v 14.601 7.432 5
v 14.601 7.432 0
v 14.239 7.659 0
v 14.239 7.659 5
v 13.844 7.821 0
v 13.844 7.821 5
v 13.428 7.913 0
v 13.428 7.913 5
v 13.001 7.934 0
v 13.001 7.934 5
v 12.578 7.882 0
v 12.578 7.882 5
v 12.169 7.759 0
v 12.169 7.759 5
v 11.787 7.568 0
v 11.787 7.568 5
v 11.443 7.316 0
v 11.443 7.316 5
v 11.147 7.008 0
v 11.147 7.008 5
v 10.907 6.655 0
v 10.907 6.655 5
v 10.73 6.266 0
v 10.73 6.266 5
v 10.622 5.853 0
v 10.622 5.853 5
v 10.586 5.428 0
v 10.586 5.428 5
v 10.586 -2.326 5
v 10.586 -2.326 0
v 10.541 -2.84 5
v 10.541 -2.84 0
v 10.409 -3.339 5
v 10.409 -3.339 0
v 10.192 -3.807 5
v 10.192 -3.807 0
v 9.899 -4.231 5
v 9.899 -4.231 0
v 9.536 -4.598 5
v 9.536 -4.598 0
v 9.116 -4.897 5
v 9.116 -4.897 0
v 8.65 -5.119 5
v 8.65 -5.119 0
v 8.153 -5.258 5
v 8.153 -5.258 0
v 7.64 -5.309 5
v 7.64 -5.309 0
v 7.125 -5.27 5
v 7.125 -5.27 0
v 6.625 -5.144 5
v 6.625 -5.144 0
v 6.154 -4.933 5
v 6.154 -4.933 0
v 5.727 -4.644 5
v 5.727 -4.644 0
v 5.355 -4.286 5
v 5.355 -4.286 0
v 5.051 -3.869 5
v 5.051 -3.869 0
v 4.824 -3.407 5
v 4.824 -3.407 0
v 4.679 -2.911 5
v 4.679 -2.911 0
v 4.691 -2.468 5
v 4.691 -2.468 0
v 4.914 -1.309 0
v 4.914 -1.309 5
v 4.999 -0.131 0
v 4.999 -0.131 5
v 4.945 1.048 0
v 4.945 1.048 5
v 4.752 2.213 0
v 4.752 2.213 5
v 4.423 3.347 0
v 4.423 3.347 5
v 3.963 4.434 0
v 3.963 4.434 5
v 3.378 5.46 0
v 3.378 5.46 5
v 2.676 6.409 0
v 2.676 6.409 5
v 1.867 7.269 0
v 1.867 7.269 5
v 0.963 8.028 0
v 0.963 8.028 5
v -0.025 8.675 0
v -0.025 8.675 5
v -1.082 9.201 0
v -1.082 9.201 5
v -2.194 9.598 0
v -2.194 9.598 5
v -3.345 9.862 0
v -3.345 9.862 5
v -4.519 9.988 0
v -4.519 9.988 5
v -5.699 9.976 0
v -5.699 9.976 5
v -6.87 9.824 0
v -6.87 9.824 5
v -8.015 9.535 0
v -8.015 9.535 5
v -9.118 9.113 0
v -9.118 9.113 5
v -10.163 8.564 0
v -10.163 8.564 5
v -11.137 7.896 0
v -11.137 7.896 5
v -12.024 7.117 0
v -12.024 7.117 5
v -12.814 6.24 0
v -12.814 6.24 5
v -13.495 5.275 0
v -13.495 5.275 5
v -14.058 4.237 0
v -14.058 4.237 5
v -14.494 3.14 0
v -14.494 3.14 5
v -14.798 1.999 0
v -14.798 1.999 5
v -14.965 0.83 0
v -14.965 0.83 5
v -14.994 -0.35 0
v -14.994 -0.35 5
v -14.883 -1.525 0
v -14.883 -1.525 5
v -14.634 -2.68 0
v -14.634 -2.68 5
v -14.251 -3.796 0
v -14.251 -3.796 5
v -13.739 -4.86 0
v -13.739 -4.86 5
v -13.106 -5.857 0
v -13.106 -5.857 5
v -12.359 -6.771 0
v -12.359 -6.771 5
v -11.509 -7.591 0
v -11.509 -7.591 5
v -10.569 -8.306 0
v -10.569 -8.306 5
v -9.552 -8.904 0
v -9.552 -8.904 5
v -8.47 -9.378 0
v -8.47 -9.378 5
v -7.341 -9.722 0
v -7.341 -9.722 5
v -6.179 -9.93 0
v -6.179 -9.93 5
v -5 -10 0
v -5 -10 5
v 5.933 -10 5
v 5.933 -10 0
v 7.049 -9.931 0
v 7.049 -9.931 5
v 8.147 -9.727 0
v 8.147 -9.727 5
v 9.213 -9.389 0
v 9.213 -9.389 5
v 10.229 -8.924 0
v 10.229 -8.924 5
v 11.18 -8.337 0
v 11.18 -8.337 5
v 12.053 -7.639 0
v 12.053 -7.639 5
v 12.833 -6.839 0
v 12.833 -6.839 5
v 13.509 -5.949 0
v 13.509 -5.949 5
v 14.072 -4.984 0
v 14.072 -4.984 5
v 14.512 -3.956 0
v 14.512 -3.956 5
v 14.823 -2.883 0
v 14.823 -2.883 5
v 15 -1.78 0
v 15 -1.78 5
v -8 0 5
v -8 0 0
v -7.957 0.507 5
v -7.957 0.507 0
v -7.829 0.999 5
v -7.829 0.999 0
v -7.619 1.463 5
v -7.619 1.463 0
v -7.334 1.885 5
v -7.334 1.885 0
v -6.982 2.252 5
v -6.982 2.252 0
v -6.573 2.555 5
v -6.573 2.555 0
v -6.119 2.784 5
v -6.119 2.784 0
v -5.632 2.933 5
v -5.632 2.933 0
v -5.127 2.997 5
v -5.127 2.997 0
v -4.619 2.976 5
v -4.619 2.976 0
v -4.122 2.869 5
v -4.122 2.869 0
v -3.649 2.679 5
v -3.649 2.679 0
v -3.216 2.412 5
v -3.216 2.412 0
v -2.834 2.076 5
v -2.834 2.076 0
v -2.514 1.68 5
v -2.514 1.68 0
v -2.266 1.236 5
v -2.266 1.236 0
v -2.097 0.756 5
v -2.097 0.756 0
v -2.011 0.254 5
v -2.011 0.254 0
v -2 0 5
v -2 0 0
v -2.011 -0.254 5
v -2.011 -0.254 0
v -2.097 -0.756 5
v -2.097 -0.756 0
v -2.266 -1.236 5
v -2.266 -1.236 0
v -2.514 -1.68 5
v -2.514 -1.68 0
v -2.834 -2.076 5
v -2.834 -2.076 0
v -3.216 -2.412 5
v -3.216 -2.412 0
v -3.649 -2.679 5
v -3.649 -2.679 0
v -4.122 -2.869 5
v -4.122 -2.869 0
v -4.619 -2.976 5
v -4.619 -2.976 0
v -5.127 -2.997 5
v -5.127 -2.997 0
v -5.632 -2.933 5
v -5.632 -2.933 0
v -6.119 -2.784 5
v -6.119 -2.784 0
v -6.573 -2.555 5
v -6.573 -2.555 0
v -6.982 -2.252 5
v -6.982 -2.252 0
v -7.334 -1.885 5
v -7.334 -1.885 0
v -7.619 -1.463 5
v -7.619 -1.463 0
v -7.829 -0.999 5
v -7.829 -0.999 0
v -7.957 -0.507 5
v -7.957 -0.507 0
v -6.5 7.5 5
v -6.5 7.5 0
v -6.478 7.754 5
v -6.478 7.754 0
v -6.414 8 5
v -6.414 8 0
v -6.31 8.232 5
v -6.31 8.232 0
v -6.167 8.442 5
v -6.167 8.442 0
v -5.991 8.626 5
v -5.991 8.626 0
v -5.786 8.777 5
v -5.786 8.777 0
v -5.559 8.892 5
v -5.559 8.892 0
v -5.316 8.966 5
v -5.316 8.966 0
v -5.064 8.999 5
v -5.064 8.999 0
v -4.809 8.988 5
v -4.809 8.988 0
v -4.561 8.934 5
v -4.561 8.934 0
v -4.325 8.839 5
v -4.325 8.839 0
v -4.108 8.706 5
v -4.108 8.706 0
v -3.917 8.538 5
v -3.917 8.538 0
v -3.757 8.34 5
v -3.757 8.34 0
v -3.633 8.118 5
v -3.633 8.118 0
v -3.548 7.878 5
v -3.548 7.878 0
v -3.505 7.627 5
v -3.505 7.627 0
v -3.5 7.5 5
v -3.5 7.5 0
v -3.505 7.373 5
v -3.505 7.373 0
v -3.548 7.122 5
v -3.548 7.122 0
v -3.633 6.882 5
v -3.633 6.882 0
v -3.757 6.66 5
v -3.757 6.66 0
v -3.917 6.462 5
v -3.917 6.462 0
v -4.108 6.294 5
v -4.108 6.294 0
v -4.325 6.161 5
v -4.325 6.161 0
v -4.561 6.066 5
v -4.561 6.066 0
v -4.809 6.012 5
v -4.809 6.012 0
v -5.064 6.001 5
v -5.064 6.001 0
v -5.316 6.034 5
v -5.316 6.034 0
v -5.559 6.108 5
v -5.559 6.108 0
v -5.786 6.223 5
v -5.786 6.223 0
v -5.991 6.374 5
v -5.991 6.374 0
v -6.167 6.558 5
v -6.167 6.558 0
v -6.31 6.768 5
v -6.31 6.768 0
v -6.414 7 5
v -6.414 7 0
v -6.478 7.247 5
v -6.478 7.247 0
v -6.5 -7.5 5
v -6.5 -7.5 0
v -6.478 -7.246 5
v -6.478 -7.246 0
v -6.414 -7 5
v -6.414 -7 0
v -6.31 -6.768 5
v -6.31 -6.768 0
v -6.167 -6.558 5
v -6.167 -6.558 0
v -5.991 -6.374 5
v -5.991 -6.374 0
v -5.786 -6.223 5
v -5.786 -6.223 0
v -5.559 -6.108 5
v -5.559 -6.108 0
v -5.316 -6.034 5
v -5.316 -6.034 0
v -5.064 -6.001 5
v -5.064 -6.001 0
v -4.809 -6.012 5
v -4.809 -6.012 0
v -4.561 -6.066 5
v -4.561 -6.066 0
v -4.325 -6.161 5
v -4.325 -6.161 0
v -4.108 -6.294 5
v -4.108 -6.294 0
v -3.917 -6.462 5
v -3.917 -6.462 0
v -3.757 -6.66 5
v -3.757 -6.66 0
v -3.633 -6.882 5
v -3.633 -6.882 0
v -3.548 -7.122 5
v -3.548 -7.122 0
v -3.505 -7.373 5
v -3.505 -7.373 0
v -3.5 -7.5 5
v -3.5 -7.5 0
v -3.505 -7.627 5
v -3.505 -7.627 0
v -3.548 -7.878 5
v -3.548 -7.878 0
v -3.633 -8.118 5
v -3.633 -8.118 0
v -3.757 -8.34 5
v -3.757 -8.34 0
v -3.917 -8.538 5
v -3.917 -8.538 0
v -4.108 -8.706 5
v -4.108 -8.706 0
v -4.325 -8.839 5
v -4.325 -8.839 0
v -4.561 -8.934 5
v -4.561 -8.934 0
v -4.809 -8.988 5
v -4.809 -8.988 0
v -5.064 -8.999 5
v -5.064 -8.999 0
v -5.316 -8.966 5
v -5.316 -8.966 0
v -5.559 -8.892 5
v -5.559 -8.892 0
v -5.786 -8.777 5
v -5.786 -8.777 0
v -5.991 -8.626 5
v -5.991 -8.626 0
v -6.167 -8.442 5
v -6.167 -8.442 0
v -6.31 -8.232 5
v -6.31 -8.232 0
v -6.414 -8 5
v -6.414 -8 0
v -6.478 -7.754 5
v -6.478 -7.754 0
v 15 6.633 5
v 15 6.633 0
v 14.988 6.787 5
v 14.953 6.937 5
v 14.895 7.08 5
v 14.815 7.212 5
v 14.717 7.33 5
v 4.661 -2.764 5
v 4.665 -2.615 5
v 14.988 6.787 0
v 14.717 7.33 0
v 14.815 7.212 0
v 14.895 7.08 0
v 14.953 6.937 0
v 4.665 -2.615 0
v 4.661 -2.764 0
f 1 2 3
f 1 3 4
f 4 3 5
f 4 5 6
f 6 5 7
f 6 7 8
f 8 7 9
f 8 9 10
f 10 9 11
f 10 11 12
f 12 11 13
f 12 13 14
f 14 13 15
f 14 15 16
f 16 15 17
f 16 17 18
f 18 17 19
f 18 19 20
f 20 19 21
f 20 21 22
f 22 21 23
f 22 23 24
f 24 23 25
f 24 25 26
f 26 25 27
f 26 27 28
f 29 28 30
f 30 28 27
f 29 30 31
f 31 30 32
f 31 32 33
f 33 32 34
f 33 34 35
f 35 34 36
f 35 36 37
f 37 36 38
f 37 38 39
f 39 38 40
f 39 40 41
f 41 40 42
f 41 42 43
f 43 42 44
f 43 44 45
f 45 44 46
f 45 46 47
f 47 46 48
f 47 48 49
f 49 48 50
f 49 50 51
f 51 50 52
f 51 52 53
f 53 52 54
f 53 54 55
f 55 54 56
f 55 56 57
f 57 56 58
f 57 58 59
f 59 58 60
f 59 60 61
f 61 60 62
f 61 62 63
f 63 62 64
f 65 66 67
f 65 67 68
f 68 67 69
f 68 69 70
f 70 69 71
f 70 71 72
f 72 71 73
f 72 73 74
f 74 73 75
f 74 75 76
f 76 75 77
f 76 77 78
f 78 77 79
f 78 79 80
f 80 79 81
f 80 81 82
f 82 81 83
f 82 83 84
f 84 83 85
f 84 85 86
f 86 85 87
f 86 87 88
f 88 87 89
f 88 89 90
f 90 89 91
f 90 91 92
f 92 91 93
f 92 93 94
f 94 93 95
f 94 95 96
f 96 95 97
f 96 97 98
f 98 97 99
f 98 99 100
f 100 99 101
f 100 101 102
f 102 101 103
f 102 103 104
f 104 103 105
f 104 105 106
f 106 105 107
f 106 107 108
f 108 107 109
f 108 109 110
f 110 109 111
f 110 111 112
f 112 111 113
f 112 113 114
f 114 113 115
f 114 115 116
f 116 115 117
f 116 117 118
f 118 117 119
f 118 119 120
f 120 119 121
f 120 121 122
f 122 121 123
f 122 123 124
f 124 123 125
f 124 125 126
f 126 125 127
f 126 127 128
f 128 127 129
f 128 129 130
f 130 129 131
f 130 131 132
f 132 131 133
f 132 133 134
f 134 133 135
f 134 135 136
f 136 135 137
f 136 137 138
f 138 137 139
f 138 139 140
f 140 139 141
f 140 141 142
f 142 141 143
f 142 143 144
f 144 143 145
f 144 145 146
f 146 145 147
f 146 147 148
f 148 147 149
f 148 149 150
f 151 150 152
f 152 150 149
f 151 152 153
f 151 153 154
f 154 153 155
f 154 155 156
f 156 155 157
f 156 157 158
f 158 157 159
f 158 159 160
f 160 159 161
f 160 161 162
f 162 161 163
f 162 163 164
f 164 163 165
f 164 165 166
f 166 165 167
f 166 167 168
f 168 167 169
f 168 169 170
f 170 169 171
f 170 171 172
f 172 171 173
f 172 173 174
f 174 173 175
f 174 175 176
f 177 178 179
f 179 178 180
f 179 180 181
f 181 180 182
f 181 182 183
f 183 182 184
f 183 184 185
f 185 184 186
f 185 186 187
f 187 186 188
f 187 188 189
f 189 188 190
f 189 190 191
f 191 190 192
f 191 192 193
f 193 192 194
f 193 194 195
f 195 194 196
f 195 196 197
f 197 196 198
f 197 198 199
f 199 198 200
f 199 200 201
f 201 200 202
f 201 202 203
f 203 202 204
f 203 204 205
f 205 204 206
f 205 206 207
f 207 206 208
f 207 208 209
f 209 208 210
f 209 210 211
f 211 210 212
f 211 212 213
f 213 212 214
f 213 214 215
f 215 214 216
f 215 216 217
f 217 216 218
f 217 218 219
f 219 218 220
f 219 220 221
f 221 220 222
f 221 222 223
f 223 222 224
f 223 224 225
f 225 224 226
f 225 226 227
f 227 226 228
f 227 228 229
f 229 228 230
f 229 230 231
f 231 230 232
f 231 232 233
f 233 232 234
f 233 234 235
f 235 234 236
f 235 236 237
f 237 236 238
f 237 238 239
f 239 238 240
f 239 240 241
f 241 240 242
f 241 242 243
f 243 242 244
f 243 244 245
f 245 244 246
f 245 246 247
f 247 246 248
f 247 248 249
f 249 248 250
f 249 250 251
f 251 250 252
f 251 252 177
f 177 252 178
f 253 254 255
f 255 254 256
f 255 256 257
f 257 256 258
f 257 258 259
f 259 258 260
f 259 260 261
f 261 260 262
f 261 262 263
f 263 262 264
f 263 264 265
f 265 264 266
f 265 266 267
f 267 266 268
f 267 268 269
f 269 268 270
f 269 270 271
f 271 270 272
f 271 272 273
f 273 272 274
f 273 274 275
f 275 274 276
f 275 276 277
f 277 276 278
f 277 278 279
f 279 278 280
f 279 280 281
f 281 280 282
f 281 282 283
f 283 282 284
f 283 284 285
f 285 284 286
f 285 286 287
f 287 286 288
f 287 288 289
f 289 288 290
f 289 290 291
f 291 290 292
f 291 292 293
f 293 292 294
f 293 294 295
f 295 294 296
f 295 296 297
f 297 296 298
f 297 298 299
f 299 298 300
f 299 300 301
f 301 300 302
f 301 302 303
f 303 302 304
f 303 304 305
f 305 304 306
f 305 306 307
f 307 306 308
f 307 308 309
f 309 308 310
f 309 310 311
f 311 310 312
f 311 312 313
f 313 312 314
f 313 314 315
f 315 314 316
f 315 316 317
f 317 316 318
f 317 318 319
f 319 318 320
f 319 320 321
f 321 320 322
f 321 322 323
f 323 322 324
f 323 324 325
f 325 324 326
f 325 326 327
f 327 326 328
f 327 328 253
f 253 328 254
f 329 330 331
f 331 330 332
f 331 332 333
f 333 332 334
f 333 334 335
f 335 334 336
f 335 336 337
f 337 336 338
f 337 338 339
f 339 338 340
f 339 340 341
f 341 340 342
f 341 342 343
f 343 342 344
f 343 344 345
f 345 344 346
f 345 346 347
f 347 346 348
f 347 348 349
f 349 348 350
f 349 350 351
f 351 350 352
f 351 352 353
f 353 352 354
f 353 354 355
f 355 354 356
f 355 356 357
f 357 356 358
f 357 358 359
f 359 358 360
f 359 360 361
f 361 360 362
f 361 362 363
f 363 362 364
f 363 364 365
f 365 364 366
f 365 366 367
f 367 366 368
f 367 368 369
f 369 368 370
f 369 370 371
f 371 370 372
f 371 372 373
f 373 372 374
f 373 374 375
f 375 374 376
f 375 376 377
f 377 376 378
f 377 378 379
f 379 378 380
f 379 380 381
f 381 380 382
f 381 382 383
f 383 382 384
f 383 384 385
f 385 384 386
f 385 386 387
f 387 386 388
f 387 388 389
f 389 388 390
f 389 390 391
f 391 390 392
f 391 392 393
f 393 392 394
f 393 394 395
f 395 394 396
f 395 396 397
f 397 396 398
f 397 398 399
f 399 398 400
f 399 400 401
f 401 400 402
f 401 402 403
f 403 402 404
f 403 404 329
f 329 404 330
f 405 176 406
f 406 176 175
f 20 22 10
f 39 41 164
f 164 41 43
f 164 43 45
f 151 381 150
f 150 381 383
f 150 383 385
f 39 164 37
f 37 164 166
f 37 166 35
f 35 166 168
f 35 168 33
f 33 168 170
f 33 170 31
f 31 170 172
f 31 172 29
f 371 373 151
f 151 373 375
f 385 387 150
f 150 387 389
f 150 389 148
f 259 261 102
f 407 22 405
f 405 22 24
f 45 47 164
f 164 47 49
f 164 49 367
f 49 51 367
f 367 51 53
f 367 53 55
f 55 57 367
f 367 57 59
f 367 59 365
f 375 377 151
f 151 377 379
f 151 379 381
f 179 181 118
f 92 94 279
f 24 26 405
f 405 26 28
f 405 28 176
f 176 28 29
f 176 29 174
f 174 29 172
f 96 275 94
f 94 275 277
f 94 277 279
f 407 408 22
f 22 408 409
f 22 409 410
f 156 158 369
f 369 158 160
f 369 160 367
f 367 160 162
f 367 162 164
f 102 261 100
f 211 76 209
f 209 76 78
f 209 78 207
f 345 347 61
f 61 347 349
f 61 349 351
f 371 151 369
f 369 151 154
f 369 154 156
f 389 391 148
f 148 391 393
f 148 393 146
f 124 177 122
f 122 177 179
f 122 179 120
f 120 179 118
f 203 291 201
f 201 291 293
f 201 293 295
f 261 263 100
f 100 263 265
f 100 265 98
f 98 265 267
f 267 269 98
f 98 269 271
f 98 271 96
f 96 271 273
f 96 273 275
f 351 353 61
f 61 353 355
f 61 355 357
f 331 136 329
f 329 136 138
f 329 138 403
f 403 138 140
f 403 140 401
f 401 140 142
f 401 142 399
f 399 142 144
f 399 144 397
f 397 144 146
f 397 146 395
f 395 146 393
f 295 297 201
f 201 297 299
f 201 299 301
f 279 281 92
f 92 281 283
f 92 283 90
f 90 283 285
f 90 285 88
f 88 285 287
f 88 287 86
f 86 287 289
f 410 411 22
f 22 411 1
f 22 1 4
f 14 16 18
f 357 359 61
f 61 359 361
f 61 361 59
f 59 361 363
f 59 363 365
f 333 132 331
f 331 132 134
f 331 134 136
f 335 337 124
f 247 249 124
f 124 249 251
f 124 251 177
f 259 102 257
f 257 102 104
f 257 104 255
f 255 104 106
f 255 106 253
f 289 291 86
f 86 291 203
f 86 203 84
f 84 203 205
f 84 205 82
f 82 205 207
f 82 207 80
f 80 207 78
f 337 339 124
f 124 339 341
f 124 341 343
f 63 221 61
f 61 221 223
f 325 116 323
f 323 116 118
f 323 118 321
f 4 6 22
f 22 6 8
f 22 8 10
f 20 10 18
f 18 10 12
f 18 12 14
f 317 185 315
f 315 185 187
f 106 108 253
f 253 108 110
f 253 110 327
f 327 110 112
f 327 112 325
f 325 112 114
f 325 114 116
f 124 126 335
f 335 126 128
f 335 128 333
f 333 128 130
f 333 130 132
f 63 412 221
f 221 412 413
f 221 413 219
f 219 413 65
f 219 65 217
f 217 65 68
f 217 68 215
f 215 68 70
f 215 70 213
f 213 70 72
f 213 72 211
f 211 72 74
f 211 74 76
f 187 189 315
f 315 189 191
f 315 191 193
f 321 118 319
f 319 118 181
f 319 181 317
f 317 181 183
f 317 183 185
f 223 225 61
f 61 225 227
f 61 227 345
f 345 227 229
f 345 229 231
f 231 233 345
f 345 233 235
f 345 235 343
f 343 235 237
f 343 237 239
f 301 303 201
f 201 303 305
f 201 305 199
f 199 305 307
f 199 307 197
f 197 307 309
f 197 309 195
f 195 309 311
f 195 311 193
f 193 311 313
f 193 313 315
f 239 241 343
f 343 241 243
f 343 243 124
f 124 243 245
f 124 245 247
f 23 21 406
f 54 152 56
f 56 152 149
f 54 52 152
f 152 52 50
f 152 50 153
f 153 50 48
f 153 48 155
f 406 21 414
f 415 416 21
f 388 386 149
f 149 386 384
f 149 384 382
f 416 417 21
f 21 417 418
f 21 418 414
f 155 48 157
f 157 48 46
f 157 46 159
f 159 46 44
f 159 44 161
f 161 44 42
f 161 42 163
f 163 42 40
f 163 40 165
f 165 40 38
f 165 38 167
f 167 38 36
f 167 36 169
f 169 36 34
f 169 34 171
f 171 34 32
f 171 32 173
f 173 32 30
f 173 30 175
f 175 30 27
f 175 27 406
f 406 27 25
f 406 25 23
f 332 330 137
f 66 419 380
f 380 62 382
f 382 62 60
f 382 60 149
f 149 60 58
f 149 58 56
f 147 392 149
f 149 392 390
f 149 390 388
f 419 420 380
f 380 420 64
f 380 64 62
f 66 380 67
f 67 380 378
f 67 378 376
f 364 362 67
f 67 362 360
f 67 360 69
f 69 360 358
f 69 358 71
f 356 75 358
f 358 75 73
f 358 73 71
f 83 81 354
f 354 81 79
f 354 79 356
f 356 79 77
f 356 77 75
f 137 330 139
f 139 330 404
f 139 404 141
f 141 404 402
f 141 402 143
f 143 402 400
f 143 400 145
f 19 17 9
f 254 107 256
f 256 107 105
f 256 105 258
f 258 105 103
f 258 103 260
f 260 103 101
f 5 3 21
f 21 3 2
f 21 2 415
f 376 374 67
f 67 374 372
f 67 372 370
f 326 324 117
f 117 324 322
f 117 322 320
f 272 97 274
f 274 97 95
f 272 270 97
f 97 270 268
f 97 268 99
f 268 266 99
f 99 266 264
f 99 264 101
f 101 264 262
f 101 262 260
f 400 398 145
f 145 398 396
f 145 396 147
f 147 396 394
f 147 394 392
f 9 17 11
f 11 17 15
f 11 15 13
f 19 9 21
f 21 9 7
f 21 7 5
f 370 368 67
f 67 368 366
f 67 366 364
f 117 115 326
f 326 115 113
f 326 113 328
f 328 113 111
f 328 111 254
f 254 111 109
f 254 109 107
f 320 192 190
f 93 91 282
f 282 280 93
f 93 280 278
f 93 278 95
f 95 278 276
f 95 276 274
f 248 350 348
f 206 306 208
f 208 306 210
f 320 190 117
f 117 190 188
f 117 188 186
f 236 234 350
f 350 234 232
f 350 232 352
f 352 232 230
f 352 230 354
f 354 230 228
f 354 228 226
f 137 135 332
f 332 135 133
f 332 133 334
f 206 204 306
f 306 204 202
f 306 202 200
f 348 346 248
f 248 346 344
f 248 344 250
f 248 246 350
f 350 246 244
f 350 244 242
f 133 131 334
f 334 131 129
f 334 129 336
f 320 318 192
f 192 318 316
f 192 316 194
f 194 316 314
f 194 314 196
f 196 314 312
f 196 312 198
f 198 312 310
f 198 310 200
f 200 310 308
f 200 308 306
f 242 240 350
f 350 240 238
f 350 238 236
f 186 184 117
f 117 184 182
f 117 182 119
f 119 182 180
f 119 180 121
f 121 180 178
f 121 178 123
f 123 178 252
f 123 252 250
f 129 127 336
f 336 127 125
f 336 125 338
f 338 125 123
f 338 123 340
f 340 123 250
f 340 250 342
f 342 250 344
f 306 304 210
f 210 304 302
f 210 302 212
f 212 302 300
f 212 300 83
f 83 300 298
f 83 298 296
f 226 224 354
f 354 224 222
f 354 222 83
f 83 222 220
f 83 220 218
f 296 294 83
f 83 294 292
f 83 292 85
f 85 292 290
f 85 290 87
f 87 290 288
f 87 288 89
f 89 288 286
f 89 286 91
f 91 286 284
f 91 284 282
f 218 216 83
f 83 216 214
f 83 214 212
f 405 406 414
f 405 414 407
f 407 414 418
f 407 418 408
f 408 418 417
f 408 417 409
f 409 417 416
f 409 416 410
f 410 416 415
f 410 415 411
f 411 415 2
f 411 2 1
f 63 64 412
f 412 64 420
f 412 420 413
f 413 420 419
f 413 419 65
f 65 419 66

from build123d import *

# Parameters (mm, degrees)
ESQUISSE1_R        = 1.5
ESQUISSE1_R_2      = 3
BOSS_EXTRU_1_DEPTH = 5
CONG_3_R           = 1
CONG_7_R           = 1


with BuildPart() as part:
    # Esquisse1 → Boss.-Extru.1 (new body)
    with BuildSketch(Plane.XY):
        with BuildLine():
            Line((10.585988002, 5.428041782), (10.585988002, -2.326303621))
            ThreePointArc((10.585988002, -2.326303621), (7.77052424, -5.304066258), (4.639803855, -2.659733377))
            ThreePointArc((4.639803855, -2.659733377), (-11.05816252, 7.956045933), (-5, -10))
            Line((-5, -10), (5.93338076, -10))
            ThreePointArc((5.93338076, -10), (12.052569379, -7.638961176), (15, -1.779641556))
            Line((15, -1.779641556), (15, 0))
            Line((15, 0), (15, 7.057325334))
            ThreePointArc((15, 7.057325334), (12.225325109, 7.780597138), (10.585988002, 5.428041782))
        make_face()
        with Locations((-5, -7.5)):
            Circle(ESQUISSE1_R, mode=Mode.SUBTRACT)
        with Locations((-5, 0)):
            Circle(ESQUISSE1_R_2, mode=Mode.SUBTRACT)
        with Locations((-5, 7.5)):
            Circle(ESQUISSE1_R, mode=Mode.SUBTRACT)
    extrude(amount=BOSS_EXTRU_1_DEPTH)

    # Congé3
    cong_3_edges = [part.edges().sort_by_distance(p)[0] for p in [
        (15, 7.057325334, 2.5),
    ]]
    fillet(cong_3_edges, radius=CONG_3_R)

    # Congé7
    cong_7_edges = [part.edges().sort_by_distance(p)[0] for p in [
        (4.639803855, -2.659733377, 2.5),
    ]]
    fillet(cong_7_edges, radius=CONG_7_R)


solid = part.part
